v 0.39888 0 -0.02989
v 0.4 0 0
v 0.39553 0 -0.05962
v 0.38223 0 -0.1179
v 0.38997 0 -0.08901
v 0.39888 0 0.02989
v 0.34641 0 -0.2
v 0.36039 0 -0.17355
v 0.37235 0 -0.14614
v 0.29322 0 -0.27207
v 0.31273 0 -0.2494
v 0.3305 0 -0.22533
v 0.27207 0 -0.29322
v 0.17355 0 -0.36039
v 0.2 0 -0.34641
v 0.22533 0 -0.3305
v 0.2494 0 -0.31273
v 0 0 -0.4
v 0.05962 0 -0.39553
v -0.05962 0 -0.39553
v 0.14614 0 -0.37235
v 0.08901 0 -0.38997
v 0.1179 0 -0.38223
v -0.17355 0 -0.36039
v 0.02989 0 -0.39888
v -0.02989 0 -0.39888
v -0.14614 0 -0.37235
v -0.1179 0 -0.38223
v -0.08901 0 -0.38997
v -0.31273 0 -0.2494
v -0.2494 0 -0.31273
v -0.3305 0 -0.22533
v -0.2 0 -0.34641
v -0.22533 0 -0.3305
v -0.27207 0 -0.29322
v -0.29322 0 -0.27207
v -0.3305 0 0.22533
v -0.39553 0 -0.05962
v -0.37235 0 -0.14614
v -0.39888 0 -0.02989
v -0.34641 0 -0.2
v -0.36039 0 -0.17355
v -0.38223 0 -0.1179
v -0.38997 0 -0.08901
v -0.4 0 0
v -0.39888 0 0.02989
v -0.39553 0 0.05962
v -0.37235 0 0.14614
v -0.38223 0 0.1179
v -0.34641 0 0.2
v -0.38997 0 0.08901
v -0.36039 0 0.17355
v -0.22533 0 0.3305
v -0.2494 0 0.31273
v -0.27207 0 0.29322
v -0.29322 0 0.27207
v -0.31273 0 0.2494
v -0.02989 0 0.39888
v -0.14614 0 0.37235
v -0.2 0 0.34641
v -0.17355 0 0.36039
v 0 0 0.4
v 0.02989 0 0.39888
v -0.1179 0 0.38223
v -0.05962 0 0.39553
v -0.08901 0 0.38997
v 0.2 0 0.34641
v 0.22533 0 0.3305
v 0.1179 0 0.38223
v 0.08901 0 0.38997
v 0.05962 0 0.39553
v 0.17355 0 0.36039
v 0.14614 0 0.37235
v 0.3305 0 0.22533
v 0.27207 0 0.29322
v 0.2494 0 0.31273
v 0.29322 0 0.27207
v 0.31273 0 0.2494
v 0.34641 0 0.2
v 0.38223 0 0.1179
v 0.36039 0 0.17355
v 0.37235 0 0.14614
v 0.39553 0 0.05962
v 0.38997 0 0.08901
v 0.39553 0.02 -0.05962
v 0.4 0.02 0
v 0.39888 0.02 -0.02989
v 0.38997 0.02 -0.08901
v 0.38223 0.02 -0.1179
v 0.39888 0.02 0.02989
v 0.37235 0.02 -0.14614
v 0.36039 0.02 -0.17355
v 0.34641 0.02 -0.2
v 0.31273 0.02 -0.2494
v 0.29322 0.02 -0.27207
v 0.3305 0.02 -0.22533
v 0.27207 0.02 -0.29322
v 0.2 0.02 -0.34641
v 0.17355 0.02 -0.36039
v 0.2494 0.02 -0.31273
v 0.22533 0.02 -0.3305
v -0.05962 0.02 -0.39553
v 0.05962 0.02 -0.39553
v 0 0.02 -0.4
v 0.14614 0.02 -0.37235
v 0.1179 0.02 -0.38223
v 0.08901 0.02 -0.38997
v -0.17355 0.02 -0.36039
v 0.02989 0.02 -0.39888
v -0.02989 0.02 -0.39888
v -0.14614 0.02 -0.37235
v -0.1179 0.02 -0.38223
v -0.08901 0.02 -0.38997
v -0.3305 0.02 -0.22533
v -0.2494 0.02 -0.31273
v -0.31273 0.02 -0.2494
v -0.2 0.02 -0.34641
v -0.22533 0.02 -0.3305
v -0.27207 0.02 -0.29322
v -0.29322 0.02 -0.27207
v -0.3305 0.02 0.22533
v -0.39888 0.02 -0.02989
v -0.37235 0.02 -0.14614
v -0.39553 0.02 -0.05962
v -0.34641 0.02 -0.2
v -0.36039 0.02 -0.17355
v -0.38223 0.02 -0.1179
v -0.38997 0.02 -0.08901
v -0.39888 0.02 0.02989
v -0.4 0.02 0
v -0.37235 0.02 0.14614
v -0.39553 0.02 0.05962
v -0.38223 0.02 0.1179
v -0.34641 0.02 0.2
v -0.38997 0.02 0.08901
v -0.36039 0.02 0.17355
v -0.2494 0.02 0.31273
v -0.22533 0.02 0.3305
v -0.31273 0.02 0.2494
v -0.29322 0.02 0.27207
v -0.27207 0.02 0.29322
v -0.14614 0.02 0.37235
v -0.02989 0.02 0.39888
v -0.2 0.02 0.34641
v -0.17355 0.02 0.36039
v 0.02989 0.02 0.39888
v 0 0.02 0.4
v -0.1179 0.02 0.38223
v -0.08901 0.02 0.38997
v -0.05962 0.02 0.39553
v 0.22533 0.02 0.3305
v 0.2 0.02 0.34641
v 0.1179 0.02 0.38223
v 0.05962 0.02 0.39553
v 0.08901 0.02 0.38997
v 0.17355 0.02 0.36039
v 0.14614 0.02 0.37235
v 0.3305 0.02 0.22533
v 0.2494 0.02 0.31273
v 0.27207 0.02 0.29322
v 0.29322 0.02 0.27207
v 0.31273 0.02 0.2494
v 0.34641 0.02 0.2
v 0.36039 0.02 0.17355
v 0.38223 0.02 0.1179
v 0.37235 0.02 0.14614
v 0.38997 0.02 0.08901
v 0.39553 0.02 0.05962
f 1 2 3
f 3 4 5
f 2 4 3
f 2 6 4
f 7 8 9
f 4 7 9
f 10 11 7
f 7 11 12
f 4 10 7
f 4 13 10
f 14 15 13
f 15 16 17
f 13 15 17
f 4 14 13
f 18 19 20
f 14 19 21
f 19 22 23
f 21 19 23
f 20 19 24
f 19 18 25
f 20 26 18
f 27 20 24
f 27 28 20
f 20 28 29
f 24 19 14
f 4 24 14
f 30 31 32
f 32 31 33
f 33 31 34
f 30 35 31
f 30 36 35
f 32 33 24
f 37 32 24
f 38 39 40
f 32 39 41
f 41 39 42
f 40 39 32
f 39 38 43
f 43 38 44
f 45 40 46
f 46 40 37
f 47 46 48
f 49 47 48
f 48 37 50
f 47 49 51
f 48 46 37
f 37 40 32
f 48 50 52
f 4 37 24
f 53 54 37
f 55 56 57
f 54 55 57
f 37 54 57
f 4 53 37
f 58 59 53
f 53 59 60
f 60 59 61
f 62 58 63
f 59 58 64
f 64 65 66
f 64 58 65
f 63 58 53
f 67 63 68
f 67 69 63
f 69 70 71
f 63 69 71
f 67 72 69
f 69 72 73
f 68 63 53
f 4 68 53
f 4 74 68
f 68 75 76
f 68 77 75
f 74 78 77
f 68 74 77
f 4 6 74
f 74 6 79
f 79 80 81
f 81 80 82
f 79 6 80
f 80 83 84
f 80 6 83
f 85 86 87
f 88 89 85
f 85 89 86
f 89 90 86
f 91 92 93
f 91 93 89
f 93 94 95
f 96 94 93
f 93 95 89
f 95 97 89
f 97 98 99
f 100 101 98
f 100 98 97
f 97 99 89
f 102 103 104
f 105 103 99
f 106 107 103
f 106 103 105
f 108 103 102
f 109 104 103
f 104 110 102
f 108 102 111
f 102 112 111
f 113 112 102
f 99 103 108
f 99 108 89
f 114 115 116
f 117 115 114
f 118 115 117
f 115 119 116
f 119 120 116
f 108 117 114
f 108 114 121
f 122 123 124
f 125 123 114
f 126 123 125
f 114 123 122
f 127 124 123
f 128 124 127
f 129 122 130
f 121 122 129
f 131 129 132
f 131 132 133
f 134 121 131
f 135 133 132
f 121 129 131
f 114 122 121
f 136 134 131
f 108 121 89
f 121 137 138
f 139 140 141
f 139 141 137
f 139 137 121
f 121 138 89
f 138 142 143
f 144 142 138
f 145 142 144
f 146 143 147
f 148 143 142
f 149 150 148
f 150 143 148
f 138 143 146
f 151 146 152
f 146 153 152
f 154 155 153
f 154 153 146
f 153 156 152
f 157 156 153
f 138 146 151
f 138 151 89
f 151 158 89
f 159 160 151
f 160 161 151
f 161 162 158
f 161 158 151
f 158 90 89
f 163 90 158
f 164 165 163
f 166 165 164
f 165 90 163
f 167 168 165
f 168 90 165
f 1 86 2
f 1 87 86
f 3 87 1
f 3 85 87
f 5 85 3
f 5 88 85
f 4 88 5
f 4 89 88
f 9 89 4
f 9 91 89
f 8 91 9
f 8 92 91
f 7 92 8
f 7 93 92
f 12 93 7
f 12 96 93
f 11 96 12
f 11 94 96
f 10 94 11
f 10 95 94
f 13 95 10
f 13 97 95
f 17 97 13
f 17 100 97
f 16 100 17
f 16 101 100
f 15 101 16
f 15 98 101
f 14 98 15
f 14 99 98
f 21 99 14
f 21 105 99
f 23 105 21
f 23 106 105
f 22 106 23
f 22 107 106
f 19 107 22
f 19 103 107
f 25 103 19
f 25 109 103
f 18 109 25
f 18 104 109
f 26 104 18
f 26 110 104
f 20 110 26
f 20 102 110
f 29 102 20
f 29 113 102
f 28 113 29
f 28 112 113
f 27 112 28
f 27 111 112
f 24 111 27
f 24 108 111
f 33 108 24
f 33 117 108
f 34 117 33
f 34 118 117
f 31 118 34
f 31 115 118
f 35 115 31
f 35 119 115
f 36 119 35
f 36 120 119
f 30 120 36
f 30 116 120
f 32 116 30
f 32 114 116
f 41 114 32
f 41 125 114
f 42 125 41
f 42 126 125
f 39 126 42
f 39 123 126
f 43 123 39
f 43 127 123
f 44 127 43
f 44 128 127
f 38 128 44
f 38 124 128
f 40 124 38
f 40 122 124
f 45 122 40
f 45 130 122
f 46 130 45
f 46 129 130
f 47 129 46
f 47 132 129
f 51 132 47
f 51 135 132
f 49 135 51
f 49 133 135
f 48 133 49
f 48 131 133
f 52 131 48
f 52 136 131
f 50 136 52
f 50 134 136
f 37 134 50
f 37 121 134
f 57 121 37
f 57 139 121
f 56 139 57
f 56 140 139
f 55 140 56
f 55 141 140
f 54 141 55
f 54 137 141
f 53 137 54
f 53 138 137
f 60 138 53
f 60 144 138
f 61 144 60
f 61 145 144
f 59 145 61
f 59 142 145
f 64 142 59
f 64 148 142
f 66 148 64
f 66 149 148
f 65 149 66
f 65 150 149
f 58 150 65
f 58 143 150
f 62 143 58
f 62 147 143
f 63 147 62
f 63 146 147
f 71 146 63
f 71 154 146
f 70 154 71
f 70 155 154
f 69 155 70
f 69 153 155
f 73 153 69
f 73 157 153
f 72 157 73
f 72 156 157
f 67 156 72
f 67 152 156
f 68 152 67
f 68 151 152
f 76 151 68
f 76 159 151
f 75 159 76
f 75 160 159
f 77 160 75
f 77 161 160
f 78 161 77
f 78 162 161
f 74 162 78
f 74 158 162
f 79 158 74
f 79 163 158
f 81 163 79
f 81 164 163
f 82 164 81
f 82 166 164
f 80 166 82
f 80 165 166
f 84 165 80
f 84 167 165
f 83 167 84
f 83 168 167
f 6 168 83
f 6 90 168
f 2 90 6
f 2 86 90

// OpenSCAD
$fa = 1;
$fs = 0.03;
radius = 0.4;
rotate([-90,0,0])
  linear_extrude(0.02)
    circle(radius);
